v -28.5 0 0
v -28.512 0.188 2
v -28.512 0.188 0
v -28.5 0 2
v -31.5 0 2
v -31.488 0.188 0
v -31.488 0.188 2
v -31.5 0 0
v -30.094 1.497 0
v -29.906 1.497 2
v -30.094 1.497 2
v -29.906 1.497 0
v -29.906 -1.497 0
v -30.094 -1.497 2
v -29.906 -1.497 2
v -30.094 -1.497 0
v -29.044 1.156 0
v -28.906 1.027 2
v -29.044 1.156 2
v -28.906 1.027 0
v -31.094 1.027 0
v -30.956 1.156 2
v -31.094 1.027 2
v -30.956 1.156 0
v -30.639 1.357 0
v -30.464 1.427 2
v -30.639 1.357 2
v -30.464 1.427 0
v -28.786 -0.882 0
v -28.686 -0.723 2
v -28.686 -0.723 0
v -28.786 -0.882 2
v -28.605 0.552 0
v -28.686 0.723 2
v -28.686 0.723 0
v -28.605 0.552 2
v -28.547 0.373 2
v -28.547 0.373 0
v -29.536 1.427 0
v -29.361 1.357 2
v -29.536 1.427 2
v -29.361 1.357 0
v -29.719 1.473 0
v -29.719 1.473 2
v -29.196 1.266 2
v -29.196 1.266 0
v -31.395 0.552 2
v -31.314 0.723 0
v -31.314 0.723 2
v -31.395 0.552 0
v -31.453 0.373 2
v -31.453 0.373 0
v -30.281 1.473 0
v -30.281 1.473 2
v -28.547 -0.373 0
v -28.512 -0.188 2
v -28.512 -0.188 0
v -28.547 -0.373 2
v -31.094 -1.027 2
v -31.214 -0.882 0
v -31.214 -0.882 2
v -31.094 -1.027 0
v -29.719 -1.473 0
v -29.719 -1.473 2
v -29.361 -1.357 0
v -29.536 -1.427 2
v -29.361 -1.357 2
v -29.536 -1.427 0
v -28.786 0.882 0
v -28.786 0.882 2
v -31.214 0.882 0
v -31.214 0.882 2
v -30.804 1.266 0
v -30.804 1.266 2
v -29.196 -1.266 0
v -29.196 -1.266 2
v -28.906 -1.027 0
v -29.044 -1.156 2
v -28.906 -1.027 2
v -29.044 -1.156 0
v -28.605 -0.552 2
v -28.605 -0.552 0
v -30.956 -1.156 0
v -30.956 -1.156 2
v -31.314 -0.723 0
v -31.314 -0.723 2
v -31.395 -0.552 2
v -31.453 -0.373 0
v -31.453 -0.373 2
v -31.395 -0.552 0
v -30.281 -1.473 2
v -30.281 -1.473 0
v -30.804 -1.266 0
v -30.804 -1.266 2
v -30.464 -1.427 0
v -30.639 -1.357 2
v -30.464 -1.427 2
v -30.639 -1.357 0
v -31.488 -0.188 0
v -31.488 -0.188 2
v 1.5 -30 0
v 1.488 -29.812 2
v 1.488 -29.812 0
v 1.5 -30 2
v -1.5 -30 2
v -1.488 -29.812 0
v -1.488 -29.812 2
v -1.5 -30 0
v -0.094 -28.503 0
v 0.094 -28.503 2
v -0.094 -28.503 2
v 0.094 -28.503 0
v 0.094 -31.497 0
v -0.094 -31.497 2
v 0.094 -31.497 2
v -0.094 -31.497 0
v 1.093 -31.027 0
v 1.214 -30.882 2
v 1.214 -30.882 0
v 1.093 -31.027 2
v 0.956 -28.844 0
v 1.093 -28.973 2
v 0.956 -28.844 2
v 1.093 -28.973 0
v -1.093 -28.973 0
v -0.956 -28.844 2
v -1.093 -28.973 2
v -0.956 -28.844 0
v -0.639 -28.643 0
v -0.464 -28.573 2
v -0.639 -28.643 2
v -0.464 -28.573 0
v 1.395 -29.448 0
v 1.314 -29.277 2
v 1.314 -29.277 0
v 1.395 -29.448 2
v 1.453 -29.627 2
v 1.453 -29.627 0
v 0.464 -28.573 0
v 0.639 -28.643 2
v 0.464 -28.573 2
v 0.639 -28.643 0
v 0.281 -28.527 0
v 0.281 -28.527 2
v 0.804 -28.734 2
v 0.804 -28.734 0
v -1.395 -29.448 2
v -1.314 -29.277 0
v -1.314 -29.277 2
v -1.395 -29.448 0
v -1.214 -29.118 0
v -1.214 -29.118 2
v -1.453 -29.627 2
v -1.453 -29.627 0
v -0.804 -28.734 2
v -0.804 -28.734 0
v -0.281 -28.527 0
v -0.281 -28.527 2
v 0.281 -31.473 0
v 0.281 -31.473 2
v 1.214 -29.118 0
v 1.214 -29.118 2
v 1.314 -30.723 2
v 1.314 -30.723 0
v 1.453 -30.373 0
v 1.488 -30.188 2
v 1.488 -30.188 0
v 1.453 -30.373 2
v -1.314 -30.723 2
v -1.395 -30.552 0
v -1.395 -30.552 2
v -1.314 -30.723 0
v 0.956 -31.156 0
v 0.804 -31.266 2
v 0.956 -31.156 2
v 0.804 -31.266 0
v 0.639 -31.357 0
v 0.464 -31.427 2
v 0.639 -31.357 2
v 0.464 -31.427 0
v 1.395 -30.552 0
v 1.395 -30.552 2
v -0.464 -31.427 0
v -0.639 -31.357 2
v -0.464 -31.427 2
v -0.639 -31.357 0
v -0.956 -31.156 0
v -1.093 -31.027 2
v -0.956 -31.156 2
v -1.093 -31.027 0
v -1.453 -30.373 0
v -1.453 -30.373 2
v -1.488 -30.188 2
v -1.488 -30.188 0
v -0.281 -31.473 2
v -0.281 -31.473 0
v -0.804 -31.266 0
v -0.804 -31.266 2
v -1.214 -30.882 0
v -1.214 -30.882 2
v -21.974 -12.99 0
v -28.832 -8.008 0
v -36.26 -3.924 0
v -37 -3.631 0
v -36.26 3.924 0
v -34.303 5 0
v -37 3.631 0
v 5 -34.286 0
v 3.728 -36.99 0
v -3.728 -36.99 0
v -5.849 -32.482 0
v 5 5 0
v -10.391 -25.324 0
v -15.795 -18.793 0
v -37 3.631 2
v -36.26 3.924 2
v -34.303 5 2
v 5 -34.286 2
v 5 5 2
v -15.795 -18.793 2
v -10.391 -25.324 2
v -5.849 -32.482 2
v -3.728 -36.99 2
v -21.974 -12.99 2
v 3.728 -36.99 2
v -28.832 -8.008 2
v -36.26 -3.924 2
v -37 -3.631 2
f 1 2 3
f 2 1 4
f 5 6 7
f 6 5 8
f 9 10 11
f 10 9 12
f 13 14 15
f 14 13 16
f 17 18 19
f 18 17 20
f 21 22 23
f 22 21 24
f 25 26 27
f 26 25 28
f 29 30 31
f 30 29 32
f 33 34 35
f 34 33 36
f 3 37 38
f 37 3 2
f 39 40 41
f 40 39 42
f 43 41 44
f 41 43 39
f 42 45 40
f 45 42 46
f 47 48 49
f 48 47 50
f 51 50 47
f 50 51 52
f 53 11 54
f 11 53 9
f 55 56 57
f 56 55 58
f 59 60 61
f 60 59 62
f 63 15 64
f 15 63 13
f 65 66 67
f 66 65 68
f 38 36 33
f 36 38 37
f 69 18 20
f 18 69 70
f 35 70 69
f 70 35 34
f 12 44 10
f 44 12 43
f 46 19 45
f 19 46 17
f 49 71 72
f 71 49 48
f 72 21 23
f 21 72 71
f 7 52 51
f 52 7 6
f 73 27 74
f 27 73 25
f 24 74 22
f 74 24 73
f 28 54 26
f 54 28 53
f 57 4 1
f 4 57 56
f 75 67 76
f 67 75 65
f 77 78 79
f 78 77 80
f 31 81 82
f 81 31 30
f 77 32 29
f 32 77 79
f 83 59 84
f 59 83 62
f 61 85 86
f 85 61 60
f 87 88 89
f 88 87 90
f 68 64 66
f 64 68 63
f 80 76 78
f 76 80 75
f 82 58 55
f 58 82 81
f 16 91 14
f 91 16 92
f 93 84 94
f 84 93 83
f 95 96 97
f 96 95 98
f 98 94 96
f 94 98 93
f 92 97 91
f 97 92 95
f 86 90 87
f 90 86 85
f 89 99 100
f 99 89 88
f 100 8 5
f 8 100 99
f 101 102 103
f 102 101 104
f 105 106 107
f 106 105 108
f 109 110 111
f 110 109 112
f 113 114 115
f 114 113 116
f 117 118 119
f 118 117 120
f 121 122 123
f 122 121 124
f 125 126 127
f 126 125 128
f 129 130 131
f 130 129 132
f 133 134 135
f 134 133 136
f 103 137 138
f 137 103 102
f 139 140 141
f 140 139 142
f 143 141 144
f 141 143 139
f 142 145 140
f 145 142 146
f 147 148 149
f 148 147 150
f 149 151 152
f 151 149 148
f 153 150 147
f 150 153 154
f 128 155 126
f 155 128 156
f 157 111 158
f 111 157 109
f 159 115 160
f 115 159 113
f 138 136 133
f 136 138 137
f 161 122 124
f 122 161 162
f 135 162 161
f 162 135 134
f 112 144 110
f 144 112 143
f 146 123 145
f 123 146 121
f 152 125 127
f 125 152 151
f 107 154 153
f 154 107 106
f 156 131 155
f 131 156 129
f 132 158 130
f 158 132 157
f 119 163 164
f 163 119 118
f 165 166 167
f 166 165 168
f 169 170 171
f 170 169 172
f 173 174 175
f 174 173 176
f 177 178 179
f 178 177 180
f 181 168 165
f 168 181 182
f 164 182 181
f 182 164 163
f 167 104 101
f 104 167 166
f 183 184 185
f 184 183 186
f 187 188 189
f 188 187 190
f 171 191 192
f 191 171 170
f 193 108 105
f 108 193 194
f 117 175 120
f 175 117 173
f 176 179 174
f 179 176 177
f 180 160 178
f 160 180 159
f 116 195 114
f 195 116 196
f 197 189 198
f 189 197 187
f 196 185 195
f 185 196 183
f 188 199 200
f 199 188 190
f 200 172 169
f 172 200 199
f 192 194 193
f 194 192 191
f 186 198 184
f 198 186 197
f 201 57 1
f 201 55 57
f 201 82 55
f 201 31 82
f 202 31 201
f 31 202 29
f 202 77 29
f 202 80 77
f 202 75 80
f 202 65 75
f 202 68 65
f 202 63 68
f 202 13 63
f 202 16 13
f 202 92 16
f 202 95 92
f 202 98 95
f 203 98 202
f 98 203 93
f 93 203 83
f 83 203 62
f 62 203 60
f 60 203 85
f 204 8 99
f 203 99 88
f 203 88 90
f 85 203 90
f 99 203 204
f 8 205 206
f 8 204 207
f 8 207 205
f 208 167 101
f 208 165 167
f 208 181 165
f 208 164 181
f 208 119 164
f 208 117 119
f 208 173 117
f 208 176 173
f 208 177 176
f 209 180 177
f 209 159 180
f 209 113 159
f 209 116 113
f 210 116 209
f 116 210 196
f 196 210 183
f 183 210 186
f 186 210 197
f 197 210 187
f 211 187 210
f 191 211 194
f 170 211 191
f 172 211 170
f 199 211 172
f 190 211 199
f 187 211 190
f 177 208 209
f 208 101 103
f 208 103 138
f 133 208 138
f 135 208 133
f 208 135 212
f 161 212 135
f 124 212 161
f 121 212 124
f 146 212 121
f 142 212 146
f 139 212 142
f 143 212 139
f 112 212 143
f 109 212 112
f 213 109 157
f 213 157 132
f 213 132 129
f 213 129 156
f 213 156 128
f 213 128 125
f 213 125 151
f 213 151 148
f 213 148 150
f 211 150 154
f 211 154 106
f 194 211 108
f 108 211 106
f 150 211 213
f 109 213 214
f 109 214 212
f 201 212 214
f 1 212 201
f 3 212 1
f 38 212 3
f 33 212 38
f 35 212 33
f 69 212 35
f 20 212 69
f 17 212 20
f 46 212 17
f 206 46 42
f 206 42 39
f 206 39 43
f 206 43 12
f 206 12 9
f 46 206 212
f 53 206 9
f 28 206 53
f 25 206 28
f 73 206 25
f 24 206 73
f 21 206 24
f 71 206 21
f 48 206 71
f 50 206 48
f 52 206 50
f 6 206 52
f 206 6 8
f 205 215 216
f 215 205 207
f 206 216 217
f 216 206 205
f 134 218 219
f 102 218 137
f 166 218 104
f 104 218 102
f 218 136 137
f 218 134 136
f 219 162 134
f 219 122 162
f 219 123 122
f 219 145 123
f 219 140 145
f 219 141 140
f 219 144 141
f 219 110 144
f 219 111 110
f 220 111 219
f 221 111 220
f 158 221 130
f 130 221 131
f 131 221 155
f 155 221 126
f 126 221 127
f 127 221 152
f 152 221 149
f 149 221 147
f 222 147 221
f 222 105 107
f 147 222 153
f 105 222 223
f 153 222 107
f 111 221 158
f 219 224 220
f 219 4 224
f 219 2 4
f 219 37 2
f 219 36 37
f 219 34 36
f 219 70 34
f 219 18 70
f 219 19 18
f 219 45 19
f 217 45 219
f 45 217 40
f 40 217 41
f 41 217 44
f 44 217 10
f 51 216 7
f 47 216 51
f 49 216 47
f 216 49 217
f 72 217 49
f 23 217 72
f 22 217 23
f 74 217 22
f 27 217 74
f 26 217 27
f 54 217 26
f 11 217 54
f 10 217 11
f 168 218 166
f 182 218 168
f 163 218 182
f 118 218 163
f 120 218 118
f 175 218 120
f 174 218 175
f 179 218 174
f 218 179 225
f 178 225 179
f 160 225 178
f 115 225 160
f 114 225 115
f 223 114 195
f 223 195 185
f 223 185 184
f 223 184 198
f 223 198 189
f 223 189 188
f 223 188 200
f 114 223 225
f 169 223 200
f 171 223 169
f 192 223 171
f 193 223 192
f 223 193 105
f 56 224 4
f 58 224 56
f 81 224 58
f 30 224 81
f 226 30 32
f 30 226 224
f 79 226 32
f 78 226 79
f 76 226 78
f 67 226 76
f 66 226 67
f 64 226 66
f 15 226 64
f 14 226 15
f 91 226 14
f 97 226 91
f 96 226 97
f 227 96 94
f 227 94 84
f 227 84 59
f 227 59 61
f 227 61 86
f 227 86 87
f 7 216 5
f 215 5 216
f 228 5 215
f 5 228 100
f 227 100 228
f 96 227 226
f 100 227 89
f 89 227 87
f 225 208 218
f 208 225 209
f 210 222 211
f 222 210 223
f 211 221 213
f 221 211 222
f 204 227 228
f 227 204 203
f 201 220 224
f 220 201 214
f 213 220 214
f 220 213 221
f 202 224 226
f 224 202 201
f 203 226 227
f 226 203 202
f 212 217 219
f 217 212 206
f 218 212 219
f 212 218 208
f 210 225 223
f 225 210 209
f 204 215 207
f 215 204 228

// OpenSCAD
$fn = 50;


difference() {
	union() {
		hull() {
			translate(v = [-32.0000000000, 32.0000000000, 0]) {
				cylinder(h = 2, r = 5);
			}
			translate(v = [32.0000000000, 32.0000000000, 0]) {
				cylinder(h = 2, r = 5);
			}
			translate(v = [-32.0000000000, -32.0000000000, 0]) {
				cylinder(h = 2, r = 5);
			}
			translate(v = [32.0000000000, -32.0000000000, 0]) {
				cylinder(h = 2, r = 5);
			}
		}
	}
	union() {
		translate(v = [30, 0, -100.0000000000]) {
			cylinder(h = 200, r = 1.5000000000);
		}
		translate(v = [-30, 0, -100.0000000000]) {
			cylinder(h = 200, r = 1.5000000000);
		}
		translate(v = [0, -30, -100.0000000000]) {
			cylinder(h = 200, r = 1.5000000000);
		}
		translate(v = [0, 30, -100.0000000000]) {
			cylinder(h = 200, r = 1.5000000000);
		}
		translate(v = [65, 65, 0.0000000000]) {
			cylinder(h = 2, r = 67.5000000000);
		}
		translate(v = [-65, 65, 0.0000000000]) {
			cylinder(h = 2, r = 67.5000000000);
		}
		translate(v = [65, -65, 0.0000000000]) {
			cylinder(h = 2, r = 67.5000000000);
		}
		translate(v = [-65, -65, 0.0000000000]) {
			cylinder(h = 2, r = 67.5000000000);
		}
		translate(v = [-250, 5, -250]) {
			cube(size = [500, 500, 500]);
		}
		translate(v = [-250, 5, -250]) {
			cube(size = [500, 500, 500]);
		}
		translate(v = [-250, 5, -250]) {
			cube(size = [500, 500, 500]);
		}
		translate(v = [5, -250, -250]) {
			cube(size = [500, 500, 500]);
		}
		translate(v = [5, -250, -250]) {
			cube(size = [500, 500, 500]);
		}
		translate(v = [5, -250, -250]) {
			cube(size = [500, 500, 500]);
		}
	}
}
